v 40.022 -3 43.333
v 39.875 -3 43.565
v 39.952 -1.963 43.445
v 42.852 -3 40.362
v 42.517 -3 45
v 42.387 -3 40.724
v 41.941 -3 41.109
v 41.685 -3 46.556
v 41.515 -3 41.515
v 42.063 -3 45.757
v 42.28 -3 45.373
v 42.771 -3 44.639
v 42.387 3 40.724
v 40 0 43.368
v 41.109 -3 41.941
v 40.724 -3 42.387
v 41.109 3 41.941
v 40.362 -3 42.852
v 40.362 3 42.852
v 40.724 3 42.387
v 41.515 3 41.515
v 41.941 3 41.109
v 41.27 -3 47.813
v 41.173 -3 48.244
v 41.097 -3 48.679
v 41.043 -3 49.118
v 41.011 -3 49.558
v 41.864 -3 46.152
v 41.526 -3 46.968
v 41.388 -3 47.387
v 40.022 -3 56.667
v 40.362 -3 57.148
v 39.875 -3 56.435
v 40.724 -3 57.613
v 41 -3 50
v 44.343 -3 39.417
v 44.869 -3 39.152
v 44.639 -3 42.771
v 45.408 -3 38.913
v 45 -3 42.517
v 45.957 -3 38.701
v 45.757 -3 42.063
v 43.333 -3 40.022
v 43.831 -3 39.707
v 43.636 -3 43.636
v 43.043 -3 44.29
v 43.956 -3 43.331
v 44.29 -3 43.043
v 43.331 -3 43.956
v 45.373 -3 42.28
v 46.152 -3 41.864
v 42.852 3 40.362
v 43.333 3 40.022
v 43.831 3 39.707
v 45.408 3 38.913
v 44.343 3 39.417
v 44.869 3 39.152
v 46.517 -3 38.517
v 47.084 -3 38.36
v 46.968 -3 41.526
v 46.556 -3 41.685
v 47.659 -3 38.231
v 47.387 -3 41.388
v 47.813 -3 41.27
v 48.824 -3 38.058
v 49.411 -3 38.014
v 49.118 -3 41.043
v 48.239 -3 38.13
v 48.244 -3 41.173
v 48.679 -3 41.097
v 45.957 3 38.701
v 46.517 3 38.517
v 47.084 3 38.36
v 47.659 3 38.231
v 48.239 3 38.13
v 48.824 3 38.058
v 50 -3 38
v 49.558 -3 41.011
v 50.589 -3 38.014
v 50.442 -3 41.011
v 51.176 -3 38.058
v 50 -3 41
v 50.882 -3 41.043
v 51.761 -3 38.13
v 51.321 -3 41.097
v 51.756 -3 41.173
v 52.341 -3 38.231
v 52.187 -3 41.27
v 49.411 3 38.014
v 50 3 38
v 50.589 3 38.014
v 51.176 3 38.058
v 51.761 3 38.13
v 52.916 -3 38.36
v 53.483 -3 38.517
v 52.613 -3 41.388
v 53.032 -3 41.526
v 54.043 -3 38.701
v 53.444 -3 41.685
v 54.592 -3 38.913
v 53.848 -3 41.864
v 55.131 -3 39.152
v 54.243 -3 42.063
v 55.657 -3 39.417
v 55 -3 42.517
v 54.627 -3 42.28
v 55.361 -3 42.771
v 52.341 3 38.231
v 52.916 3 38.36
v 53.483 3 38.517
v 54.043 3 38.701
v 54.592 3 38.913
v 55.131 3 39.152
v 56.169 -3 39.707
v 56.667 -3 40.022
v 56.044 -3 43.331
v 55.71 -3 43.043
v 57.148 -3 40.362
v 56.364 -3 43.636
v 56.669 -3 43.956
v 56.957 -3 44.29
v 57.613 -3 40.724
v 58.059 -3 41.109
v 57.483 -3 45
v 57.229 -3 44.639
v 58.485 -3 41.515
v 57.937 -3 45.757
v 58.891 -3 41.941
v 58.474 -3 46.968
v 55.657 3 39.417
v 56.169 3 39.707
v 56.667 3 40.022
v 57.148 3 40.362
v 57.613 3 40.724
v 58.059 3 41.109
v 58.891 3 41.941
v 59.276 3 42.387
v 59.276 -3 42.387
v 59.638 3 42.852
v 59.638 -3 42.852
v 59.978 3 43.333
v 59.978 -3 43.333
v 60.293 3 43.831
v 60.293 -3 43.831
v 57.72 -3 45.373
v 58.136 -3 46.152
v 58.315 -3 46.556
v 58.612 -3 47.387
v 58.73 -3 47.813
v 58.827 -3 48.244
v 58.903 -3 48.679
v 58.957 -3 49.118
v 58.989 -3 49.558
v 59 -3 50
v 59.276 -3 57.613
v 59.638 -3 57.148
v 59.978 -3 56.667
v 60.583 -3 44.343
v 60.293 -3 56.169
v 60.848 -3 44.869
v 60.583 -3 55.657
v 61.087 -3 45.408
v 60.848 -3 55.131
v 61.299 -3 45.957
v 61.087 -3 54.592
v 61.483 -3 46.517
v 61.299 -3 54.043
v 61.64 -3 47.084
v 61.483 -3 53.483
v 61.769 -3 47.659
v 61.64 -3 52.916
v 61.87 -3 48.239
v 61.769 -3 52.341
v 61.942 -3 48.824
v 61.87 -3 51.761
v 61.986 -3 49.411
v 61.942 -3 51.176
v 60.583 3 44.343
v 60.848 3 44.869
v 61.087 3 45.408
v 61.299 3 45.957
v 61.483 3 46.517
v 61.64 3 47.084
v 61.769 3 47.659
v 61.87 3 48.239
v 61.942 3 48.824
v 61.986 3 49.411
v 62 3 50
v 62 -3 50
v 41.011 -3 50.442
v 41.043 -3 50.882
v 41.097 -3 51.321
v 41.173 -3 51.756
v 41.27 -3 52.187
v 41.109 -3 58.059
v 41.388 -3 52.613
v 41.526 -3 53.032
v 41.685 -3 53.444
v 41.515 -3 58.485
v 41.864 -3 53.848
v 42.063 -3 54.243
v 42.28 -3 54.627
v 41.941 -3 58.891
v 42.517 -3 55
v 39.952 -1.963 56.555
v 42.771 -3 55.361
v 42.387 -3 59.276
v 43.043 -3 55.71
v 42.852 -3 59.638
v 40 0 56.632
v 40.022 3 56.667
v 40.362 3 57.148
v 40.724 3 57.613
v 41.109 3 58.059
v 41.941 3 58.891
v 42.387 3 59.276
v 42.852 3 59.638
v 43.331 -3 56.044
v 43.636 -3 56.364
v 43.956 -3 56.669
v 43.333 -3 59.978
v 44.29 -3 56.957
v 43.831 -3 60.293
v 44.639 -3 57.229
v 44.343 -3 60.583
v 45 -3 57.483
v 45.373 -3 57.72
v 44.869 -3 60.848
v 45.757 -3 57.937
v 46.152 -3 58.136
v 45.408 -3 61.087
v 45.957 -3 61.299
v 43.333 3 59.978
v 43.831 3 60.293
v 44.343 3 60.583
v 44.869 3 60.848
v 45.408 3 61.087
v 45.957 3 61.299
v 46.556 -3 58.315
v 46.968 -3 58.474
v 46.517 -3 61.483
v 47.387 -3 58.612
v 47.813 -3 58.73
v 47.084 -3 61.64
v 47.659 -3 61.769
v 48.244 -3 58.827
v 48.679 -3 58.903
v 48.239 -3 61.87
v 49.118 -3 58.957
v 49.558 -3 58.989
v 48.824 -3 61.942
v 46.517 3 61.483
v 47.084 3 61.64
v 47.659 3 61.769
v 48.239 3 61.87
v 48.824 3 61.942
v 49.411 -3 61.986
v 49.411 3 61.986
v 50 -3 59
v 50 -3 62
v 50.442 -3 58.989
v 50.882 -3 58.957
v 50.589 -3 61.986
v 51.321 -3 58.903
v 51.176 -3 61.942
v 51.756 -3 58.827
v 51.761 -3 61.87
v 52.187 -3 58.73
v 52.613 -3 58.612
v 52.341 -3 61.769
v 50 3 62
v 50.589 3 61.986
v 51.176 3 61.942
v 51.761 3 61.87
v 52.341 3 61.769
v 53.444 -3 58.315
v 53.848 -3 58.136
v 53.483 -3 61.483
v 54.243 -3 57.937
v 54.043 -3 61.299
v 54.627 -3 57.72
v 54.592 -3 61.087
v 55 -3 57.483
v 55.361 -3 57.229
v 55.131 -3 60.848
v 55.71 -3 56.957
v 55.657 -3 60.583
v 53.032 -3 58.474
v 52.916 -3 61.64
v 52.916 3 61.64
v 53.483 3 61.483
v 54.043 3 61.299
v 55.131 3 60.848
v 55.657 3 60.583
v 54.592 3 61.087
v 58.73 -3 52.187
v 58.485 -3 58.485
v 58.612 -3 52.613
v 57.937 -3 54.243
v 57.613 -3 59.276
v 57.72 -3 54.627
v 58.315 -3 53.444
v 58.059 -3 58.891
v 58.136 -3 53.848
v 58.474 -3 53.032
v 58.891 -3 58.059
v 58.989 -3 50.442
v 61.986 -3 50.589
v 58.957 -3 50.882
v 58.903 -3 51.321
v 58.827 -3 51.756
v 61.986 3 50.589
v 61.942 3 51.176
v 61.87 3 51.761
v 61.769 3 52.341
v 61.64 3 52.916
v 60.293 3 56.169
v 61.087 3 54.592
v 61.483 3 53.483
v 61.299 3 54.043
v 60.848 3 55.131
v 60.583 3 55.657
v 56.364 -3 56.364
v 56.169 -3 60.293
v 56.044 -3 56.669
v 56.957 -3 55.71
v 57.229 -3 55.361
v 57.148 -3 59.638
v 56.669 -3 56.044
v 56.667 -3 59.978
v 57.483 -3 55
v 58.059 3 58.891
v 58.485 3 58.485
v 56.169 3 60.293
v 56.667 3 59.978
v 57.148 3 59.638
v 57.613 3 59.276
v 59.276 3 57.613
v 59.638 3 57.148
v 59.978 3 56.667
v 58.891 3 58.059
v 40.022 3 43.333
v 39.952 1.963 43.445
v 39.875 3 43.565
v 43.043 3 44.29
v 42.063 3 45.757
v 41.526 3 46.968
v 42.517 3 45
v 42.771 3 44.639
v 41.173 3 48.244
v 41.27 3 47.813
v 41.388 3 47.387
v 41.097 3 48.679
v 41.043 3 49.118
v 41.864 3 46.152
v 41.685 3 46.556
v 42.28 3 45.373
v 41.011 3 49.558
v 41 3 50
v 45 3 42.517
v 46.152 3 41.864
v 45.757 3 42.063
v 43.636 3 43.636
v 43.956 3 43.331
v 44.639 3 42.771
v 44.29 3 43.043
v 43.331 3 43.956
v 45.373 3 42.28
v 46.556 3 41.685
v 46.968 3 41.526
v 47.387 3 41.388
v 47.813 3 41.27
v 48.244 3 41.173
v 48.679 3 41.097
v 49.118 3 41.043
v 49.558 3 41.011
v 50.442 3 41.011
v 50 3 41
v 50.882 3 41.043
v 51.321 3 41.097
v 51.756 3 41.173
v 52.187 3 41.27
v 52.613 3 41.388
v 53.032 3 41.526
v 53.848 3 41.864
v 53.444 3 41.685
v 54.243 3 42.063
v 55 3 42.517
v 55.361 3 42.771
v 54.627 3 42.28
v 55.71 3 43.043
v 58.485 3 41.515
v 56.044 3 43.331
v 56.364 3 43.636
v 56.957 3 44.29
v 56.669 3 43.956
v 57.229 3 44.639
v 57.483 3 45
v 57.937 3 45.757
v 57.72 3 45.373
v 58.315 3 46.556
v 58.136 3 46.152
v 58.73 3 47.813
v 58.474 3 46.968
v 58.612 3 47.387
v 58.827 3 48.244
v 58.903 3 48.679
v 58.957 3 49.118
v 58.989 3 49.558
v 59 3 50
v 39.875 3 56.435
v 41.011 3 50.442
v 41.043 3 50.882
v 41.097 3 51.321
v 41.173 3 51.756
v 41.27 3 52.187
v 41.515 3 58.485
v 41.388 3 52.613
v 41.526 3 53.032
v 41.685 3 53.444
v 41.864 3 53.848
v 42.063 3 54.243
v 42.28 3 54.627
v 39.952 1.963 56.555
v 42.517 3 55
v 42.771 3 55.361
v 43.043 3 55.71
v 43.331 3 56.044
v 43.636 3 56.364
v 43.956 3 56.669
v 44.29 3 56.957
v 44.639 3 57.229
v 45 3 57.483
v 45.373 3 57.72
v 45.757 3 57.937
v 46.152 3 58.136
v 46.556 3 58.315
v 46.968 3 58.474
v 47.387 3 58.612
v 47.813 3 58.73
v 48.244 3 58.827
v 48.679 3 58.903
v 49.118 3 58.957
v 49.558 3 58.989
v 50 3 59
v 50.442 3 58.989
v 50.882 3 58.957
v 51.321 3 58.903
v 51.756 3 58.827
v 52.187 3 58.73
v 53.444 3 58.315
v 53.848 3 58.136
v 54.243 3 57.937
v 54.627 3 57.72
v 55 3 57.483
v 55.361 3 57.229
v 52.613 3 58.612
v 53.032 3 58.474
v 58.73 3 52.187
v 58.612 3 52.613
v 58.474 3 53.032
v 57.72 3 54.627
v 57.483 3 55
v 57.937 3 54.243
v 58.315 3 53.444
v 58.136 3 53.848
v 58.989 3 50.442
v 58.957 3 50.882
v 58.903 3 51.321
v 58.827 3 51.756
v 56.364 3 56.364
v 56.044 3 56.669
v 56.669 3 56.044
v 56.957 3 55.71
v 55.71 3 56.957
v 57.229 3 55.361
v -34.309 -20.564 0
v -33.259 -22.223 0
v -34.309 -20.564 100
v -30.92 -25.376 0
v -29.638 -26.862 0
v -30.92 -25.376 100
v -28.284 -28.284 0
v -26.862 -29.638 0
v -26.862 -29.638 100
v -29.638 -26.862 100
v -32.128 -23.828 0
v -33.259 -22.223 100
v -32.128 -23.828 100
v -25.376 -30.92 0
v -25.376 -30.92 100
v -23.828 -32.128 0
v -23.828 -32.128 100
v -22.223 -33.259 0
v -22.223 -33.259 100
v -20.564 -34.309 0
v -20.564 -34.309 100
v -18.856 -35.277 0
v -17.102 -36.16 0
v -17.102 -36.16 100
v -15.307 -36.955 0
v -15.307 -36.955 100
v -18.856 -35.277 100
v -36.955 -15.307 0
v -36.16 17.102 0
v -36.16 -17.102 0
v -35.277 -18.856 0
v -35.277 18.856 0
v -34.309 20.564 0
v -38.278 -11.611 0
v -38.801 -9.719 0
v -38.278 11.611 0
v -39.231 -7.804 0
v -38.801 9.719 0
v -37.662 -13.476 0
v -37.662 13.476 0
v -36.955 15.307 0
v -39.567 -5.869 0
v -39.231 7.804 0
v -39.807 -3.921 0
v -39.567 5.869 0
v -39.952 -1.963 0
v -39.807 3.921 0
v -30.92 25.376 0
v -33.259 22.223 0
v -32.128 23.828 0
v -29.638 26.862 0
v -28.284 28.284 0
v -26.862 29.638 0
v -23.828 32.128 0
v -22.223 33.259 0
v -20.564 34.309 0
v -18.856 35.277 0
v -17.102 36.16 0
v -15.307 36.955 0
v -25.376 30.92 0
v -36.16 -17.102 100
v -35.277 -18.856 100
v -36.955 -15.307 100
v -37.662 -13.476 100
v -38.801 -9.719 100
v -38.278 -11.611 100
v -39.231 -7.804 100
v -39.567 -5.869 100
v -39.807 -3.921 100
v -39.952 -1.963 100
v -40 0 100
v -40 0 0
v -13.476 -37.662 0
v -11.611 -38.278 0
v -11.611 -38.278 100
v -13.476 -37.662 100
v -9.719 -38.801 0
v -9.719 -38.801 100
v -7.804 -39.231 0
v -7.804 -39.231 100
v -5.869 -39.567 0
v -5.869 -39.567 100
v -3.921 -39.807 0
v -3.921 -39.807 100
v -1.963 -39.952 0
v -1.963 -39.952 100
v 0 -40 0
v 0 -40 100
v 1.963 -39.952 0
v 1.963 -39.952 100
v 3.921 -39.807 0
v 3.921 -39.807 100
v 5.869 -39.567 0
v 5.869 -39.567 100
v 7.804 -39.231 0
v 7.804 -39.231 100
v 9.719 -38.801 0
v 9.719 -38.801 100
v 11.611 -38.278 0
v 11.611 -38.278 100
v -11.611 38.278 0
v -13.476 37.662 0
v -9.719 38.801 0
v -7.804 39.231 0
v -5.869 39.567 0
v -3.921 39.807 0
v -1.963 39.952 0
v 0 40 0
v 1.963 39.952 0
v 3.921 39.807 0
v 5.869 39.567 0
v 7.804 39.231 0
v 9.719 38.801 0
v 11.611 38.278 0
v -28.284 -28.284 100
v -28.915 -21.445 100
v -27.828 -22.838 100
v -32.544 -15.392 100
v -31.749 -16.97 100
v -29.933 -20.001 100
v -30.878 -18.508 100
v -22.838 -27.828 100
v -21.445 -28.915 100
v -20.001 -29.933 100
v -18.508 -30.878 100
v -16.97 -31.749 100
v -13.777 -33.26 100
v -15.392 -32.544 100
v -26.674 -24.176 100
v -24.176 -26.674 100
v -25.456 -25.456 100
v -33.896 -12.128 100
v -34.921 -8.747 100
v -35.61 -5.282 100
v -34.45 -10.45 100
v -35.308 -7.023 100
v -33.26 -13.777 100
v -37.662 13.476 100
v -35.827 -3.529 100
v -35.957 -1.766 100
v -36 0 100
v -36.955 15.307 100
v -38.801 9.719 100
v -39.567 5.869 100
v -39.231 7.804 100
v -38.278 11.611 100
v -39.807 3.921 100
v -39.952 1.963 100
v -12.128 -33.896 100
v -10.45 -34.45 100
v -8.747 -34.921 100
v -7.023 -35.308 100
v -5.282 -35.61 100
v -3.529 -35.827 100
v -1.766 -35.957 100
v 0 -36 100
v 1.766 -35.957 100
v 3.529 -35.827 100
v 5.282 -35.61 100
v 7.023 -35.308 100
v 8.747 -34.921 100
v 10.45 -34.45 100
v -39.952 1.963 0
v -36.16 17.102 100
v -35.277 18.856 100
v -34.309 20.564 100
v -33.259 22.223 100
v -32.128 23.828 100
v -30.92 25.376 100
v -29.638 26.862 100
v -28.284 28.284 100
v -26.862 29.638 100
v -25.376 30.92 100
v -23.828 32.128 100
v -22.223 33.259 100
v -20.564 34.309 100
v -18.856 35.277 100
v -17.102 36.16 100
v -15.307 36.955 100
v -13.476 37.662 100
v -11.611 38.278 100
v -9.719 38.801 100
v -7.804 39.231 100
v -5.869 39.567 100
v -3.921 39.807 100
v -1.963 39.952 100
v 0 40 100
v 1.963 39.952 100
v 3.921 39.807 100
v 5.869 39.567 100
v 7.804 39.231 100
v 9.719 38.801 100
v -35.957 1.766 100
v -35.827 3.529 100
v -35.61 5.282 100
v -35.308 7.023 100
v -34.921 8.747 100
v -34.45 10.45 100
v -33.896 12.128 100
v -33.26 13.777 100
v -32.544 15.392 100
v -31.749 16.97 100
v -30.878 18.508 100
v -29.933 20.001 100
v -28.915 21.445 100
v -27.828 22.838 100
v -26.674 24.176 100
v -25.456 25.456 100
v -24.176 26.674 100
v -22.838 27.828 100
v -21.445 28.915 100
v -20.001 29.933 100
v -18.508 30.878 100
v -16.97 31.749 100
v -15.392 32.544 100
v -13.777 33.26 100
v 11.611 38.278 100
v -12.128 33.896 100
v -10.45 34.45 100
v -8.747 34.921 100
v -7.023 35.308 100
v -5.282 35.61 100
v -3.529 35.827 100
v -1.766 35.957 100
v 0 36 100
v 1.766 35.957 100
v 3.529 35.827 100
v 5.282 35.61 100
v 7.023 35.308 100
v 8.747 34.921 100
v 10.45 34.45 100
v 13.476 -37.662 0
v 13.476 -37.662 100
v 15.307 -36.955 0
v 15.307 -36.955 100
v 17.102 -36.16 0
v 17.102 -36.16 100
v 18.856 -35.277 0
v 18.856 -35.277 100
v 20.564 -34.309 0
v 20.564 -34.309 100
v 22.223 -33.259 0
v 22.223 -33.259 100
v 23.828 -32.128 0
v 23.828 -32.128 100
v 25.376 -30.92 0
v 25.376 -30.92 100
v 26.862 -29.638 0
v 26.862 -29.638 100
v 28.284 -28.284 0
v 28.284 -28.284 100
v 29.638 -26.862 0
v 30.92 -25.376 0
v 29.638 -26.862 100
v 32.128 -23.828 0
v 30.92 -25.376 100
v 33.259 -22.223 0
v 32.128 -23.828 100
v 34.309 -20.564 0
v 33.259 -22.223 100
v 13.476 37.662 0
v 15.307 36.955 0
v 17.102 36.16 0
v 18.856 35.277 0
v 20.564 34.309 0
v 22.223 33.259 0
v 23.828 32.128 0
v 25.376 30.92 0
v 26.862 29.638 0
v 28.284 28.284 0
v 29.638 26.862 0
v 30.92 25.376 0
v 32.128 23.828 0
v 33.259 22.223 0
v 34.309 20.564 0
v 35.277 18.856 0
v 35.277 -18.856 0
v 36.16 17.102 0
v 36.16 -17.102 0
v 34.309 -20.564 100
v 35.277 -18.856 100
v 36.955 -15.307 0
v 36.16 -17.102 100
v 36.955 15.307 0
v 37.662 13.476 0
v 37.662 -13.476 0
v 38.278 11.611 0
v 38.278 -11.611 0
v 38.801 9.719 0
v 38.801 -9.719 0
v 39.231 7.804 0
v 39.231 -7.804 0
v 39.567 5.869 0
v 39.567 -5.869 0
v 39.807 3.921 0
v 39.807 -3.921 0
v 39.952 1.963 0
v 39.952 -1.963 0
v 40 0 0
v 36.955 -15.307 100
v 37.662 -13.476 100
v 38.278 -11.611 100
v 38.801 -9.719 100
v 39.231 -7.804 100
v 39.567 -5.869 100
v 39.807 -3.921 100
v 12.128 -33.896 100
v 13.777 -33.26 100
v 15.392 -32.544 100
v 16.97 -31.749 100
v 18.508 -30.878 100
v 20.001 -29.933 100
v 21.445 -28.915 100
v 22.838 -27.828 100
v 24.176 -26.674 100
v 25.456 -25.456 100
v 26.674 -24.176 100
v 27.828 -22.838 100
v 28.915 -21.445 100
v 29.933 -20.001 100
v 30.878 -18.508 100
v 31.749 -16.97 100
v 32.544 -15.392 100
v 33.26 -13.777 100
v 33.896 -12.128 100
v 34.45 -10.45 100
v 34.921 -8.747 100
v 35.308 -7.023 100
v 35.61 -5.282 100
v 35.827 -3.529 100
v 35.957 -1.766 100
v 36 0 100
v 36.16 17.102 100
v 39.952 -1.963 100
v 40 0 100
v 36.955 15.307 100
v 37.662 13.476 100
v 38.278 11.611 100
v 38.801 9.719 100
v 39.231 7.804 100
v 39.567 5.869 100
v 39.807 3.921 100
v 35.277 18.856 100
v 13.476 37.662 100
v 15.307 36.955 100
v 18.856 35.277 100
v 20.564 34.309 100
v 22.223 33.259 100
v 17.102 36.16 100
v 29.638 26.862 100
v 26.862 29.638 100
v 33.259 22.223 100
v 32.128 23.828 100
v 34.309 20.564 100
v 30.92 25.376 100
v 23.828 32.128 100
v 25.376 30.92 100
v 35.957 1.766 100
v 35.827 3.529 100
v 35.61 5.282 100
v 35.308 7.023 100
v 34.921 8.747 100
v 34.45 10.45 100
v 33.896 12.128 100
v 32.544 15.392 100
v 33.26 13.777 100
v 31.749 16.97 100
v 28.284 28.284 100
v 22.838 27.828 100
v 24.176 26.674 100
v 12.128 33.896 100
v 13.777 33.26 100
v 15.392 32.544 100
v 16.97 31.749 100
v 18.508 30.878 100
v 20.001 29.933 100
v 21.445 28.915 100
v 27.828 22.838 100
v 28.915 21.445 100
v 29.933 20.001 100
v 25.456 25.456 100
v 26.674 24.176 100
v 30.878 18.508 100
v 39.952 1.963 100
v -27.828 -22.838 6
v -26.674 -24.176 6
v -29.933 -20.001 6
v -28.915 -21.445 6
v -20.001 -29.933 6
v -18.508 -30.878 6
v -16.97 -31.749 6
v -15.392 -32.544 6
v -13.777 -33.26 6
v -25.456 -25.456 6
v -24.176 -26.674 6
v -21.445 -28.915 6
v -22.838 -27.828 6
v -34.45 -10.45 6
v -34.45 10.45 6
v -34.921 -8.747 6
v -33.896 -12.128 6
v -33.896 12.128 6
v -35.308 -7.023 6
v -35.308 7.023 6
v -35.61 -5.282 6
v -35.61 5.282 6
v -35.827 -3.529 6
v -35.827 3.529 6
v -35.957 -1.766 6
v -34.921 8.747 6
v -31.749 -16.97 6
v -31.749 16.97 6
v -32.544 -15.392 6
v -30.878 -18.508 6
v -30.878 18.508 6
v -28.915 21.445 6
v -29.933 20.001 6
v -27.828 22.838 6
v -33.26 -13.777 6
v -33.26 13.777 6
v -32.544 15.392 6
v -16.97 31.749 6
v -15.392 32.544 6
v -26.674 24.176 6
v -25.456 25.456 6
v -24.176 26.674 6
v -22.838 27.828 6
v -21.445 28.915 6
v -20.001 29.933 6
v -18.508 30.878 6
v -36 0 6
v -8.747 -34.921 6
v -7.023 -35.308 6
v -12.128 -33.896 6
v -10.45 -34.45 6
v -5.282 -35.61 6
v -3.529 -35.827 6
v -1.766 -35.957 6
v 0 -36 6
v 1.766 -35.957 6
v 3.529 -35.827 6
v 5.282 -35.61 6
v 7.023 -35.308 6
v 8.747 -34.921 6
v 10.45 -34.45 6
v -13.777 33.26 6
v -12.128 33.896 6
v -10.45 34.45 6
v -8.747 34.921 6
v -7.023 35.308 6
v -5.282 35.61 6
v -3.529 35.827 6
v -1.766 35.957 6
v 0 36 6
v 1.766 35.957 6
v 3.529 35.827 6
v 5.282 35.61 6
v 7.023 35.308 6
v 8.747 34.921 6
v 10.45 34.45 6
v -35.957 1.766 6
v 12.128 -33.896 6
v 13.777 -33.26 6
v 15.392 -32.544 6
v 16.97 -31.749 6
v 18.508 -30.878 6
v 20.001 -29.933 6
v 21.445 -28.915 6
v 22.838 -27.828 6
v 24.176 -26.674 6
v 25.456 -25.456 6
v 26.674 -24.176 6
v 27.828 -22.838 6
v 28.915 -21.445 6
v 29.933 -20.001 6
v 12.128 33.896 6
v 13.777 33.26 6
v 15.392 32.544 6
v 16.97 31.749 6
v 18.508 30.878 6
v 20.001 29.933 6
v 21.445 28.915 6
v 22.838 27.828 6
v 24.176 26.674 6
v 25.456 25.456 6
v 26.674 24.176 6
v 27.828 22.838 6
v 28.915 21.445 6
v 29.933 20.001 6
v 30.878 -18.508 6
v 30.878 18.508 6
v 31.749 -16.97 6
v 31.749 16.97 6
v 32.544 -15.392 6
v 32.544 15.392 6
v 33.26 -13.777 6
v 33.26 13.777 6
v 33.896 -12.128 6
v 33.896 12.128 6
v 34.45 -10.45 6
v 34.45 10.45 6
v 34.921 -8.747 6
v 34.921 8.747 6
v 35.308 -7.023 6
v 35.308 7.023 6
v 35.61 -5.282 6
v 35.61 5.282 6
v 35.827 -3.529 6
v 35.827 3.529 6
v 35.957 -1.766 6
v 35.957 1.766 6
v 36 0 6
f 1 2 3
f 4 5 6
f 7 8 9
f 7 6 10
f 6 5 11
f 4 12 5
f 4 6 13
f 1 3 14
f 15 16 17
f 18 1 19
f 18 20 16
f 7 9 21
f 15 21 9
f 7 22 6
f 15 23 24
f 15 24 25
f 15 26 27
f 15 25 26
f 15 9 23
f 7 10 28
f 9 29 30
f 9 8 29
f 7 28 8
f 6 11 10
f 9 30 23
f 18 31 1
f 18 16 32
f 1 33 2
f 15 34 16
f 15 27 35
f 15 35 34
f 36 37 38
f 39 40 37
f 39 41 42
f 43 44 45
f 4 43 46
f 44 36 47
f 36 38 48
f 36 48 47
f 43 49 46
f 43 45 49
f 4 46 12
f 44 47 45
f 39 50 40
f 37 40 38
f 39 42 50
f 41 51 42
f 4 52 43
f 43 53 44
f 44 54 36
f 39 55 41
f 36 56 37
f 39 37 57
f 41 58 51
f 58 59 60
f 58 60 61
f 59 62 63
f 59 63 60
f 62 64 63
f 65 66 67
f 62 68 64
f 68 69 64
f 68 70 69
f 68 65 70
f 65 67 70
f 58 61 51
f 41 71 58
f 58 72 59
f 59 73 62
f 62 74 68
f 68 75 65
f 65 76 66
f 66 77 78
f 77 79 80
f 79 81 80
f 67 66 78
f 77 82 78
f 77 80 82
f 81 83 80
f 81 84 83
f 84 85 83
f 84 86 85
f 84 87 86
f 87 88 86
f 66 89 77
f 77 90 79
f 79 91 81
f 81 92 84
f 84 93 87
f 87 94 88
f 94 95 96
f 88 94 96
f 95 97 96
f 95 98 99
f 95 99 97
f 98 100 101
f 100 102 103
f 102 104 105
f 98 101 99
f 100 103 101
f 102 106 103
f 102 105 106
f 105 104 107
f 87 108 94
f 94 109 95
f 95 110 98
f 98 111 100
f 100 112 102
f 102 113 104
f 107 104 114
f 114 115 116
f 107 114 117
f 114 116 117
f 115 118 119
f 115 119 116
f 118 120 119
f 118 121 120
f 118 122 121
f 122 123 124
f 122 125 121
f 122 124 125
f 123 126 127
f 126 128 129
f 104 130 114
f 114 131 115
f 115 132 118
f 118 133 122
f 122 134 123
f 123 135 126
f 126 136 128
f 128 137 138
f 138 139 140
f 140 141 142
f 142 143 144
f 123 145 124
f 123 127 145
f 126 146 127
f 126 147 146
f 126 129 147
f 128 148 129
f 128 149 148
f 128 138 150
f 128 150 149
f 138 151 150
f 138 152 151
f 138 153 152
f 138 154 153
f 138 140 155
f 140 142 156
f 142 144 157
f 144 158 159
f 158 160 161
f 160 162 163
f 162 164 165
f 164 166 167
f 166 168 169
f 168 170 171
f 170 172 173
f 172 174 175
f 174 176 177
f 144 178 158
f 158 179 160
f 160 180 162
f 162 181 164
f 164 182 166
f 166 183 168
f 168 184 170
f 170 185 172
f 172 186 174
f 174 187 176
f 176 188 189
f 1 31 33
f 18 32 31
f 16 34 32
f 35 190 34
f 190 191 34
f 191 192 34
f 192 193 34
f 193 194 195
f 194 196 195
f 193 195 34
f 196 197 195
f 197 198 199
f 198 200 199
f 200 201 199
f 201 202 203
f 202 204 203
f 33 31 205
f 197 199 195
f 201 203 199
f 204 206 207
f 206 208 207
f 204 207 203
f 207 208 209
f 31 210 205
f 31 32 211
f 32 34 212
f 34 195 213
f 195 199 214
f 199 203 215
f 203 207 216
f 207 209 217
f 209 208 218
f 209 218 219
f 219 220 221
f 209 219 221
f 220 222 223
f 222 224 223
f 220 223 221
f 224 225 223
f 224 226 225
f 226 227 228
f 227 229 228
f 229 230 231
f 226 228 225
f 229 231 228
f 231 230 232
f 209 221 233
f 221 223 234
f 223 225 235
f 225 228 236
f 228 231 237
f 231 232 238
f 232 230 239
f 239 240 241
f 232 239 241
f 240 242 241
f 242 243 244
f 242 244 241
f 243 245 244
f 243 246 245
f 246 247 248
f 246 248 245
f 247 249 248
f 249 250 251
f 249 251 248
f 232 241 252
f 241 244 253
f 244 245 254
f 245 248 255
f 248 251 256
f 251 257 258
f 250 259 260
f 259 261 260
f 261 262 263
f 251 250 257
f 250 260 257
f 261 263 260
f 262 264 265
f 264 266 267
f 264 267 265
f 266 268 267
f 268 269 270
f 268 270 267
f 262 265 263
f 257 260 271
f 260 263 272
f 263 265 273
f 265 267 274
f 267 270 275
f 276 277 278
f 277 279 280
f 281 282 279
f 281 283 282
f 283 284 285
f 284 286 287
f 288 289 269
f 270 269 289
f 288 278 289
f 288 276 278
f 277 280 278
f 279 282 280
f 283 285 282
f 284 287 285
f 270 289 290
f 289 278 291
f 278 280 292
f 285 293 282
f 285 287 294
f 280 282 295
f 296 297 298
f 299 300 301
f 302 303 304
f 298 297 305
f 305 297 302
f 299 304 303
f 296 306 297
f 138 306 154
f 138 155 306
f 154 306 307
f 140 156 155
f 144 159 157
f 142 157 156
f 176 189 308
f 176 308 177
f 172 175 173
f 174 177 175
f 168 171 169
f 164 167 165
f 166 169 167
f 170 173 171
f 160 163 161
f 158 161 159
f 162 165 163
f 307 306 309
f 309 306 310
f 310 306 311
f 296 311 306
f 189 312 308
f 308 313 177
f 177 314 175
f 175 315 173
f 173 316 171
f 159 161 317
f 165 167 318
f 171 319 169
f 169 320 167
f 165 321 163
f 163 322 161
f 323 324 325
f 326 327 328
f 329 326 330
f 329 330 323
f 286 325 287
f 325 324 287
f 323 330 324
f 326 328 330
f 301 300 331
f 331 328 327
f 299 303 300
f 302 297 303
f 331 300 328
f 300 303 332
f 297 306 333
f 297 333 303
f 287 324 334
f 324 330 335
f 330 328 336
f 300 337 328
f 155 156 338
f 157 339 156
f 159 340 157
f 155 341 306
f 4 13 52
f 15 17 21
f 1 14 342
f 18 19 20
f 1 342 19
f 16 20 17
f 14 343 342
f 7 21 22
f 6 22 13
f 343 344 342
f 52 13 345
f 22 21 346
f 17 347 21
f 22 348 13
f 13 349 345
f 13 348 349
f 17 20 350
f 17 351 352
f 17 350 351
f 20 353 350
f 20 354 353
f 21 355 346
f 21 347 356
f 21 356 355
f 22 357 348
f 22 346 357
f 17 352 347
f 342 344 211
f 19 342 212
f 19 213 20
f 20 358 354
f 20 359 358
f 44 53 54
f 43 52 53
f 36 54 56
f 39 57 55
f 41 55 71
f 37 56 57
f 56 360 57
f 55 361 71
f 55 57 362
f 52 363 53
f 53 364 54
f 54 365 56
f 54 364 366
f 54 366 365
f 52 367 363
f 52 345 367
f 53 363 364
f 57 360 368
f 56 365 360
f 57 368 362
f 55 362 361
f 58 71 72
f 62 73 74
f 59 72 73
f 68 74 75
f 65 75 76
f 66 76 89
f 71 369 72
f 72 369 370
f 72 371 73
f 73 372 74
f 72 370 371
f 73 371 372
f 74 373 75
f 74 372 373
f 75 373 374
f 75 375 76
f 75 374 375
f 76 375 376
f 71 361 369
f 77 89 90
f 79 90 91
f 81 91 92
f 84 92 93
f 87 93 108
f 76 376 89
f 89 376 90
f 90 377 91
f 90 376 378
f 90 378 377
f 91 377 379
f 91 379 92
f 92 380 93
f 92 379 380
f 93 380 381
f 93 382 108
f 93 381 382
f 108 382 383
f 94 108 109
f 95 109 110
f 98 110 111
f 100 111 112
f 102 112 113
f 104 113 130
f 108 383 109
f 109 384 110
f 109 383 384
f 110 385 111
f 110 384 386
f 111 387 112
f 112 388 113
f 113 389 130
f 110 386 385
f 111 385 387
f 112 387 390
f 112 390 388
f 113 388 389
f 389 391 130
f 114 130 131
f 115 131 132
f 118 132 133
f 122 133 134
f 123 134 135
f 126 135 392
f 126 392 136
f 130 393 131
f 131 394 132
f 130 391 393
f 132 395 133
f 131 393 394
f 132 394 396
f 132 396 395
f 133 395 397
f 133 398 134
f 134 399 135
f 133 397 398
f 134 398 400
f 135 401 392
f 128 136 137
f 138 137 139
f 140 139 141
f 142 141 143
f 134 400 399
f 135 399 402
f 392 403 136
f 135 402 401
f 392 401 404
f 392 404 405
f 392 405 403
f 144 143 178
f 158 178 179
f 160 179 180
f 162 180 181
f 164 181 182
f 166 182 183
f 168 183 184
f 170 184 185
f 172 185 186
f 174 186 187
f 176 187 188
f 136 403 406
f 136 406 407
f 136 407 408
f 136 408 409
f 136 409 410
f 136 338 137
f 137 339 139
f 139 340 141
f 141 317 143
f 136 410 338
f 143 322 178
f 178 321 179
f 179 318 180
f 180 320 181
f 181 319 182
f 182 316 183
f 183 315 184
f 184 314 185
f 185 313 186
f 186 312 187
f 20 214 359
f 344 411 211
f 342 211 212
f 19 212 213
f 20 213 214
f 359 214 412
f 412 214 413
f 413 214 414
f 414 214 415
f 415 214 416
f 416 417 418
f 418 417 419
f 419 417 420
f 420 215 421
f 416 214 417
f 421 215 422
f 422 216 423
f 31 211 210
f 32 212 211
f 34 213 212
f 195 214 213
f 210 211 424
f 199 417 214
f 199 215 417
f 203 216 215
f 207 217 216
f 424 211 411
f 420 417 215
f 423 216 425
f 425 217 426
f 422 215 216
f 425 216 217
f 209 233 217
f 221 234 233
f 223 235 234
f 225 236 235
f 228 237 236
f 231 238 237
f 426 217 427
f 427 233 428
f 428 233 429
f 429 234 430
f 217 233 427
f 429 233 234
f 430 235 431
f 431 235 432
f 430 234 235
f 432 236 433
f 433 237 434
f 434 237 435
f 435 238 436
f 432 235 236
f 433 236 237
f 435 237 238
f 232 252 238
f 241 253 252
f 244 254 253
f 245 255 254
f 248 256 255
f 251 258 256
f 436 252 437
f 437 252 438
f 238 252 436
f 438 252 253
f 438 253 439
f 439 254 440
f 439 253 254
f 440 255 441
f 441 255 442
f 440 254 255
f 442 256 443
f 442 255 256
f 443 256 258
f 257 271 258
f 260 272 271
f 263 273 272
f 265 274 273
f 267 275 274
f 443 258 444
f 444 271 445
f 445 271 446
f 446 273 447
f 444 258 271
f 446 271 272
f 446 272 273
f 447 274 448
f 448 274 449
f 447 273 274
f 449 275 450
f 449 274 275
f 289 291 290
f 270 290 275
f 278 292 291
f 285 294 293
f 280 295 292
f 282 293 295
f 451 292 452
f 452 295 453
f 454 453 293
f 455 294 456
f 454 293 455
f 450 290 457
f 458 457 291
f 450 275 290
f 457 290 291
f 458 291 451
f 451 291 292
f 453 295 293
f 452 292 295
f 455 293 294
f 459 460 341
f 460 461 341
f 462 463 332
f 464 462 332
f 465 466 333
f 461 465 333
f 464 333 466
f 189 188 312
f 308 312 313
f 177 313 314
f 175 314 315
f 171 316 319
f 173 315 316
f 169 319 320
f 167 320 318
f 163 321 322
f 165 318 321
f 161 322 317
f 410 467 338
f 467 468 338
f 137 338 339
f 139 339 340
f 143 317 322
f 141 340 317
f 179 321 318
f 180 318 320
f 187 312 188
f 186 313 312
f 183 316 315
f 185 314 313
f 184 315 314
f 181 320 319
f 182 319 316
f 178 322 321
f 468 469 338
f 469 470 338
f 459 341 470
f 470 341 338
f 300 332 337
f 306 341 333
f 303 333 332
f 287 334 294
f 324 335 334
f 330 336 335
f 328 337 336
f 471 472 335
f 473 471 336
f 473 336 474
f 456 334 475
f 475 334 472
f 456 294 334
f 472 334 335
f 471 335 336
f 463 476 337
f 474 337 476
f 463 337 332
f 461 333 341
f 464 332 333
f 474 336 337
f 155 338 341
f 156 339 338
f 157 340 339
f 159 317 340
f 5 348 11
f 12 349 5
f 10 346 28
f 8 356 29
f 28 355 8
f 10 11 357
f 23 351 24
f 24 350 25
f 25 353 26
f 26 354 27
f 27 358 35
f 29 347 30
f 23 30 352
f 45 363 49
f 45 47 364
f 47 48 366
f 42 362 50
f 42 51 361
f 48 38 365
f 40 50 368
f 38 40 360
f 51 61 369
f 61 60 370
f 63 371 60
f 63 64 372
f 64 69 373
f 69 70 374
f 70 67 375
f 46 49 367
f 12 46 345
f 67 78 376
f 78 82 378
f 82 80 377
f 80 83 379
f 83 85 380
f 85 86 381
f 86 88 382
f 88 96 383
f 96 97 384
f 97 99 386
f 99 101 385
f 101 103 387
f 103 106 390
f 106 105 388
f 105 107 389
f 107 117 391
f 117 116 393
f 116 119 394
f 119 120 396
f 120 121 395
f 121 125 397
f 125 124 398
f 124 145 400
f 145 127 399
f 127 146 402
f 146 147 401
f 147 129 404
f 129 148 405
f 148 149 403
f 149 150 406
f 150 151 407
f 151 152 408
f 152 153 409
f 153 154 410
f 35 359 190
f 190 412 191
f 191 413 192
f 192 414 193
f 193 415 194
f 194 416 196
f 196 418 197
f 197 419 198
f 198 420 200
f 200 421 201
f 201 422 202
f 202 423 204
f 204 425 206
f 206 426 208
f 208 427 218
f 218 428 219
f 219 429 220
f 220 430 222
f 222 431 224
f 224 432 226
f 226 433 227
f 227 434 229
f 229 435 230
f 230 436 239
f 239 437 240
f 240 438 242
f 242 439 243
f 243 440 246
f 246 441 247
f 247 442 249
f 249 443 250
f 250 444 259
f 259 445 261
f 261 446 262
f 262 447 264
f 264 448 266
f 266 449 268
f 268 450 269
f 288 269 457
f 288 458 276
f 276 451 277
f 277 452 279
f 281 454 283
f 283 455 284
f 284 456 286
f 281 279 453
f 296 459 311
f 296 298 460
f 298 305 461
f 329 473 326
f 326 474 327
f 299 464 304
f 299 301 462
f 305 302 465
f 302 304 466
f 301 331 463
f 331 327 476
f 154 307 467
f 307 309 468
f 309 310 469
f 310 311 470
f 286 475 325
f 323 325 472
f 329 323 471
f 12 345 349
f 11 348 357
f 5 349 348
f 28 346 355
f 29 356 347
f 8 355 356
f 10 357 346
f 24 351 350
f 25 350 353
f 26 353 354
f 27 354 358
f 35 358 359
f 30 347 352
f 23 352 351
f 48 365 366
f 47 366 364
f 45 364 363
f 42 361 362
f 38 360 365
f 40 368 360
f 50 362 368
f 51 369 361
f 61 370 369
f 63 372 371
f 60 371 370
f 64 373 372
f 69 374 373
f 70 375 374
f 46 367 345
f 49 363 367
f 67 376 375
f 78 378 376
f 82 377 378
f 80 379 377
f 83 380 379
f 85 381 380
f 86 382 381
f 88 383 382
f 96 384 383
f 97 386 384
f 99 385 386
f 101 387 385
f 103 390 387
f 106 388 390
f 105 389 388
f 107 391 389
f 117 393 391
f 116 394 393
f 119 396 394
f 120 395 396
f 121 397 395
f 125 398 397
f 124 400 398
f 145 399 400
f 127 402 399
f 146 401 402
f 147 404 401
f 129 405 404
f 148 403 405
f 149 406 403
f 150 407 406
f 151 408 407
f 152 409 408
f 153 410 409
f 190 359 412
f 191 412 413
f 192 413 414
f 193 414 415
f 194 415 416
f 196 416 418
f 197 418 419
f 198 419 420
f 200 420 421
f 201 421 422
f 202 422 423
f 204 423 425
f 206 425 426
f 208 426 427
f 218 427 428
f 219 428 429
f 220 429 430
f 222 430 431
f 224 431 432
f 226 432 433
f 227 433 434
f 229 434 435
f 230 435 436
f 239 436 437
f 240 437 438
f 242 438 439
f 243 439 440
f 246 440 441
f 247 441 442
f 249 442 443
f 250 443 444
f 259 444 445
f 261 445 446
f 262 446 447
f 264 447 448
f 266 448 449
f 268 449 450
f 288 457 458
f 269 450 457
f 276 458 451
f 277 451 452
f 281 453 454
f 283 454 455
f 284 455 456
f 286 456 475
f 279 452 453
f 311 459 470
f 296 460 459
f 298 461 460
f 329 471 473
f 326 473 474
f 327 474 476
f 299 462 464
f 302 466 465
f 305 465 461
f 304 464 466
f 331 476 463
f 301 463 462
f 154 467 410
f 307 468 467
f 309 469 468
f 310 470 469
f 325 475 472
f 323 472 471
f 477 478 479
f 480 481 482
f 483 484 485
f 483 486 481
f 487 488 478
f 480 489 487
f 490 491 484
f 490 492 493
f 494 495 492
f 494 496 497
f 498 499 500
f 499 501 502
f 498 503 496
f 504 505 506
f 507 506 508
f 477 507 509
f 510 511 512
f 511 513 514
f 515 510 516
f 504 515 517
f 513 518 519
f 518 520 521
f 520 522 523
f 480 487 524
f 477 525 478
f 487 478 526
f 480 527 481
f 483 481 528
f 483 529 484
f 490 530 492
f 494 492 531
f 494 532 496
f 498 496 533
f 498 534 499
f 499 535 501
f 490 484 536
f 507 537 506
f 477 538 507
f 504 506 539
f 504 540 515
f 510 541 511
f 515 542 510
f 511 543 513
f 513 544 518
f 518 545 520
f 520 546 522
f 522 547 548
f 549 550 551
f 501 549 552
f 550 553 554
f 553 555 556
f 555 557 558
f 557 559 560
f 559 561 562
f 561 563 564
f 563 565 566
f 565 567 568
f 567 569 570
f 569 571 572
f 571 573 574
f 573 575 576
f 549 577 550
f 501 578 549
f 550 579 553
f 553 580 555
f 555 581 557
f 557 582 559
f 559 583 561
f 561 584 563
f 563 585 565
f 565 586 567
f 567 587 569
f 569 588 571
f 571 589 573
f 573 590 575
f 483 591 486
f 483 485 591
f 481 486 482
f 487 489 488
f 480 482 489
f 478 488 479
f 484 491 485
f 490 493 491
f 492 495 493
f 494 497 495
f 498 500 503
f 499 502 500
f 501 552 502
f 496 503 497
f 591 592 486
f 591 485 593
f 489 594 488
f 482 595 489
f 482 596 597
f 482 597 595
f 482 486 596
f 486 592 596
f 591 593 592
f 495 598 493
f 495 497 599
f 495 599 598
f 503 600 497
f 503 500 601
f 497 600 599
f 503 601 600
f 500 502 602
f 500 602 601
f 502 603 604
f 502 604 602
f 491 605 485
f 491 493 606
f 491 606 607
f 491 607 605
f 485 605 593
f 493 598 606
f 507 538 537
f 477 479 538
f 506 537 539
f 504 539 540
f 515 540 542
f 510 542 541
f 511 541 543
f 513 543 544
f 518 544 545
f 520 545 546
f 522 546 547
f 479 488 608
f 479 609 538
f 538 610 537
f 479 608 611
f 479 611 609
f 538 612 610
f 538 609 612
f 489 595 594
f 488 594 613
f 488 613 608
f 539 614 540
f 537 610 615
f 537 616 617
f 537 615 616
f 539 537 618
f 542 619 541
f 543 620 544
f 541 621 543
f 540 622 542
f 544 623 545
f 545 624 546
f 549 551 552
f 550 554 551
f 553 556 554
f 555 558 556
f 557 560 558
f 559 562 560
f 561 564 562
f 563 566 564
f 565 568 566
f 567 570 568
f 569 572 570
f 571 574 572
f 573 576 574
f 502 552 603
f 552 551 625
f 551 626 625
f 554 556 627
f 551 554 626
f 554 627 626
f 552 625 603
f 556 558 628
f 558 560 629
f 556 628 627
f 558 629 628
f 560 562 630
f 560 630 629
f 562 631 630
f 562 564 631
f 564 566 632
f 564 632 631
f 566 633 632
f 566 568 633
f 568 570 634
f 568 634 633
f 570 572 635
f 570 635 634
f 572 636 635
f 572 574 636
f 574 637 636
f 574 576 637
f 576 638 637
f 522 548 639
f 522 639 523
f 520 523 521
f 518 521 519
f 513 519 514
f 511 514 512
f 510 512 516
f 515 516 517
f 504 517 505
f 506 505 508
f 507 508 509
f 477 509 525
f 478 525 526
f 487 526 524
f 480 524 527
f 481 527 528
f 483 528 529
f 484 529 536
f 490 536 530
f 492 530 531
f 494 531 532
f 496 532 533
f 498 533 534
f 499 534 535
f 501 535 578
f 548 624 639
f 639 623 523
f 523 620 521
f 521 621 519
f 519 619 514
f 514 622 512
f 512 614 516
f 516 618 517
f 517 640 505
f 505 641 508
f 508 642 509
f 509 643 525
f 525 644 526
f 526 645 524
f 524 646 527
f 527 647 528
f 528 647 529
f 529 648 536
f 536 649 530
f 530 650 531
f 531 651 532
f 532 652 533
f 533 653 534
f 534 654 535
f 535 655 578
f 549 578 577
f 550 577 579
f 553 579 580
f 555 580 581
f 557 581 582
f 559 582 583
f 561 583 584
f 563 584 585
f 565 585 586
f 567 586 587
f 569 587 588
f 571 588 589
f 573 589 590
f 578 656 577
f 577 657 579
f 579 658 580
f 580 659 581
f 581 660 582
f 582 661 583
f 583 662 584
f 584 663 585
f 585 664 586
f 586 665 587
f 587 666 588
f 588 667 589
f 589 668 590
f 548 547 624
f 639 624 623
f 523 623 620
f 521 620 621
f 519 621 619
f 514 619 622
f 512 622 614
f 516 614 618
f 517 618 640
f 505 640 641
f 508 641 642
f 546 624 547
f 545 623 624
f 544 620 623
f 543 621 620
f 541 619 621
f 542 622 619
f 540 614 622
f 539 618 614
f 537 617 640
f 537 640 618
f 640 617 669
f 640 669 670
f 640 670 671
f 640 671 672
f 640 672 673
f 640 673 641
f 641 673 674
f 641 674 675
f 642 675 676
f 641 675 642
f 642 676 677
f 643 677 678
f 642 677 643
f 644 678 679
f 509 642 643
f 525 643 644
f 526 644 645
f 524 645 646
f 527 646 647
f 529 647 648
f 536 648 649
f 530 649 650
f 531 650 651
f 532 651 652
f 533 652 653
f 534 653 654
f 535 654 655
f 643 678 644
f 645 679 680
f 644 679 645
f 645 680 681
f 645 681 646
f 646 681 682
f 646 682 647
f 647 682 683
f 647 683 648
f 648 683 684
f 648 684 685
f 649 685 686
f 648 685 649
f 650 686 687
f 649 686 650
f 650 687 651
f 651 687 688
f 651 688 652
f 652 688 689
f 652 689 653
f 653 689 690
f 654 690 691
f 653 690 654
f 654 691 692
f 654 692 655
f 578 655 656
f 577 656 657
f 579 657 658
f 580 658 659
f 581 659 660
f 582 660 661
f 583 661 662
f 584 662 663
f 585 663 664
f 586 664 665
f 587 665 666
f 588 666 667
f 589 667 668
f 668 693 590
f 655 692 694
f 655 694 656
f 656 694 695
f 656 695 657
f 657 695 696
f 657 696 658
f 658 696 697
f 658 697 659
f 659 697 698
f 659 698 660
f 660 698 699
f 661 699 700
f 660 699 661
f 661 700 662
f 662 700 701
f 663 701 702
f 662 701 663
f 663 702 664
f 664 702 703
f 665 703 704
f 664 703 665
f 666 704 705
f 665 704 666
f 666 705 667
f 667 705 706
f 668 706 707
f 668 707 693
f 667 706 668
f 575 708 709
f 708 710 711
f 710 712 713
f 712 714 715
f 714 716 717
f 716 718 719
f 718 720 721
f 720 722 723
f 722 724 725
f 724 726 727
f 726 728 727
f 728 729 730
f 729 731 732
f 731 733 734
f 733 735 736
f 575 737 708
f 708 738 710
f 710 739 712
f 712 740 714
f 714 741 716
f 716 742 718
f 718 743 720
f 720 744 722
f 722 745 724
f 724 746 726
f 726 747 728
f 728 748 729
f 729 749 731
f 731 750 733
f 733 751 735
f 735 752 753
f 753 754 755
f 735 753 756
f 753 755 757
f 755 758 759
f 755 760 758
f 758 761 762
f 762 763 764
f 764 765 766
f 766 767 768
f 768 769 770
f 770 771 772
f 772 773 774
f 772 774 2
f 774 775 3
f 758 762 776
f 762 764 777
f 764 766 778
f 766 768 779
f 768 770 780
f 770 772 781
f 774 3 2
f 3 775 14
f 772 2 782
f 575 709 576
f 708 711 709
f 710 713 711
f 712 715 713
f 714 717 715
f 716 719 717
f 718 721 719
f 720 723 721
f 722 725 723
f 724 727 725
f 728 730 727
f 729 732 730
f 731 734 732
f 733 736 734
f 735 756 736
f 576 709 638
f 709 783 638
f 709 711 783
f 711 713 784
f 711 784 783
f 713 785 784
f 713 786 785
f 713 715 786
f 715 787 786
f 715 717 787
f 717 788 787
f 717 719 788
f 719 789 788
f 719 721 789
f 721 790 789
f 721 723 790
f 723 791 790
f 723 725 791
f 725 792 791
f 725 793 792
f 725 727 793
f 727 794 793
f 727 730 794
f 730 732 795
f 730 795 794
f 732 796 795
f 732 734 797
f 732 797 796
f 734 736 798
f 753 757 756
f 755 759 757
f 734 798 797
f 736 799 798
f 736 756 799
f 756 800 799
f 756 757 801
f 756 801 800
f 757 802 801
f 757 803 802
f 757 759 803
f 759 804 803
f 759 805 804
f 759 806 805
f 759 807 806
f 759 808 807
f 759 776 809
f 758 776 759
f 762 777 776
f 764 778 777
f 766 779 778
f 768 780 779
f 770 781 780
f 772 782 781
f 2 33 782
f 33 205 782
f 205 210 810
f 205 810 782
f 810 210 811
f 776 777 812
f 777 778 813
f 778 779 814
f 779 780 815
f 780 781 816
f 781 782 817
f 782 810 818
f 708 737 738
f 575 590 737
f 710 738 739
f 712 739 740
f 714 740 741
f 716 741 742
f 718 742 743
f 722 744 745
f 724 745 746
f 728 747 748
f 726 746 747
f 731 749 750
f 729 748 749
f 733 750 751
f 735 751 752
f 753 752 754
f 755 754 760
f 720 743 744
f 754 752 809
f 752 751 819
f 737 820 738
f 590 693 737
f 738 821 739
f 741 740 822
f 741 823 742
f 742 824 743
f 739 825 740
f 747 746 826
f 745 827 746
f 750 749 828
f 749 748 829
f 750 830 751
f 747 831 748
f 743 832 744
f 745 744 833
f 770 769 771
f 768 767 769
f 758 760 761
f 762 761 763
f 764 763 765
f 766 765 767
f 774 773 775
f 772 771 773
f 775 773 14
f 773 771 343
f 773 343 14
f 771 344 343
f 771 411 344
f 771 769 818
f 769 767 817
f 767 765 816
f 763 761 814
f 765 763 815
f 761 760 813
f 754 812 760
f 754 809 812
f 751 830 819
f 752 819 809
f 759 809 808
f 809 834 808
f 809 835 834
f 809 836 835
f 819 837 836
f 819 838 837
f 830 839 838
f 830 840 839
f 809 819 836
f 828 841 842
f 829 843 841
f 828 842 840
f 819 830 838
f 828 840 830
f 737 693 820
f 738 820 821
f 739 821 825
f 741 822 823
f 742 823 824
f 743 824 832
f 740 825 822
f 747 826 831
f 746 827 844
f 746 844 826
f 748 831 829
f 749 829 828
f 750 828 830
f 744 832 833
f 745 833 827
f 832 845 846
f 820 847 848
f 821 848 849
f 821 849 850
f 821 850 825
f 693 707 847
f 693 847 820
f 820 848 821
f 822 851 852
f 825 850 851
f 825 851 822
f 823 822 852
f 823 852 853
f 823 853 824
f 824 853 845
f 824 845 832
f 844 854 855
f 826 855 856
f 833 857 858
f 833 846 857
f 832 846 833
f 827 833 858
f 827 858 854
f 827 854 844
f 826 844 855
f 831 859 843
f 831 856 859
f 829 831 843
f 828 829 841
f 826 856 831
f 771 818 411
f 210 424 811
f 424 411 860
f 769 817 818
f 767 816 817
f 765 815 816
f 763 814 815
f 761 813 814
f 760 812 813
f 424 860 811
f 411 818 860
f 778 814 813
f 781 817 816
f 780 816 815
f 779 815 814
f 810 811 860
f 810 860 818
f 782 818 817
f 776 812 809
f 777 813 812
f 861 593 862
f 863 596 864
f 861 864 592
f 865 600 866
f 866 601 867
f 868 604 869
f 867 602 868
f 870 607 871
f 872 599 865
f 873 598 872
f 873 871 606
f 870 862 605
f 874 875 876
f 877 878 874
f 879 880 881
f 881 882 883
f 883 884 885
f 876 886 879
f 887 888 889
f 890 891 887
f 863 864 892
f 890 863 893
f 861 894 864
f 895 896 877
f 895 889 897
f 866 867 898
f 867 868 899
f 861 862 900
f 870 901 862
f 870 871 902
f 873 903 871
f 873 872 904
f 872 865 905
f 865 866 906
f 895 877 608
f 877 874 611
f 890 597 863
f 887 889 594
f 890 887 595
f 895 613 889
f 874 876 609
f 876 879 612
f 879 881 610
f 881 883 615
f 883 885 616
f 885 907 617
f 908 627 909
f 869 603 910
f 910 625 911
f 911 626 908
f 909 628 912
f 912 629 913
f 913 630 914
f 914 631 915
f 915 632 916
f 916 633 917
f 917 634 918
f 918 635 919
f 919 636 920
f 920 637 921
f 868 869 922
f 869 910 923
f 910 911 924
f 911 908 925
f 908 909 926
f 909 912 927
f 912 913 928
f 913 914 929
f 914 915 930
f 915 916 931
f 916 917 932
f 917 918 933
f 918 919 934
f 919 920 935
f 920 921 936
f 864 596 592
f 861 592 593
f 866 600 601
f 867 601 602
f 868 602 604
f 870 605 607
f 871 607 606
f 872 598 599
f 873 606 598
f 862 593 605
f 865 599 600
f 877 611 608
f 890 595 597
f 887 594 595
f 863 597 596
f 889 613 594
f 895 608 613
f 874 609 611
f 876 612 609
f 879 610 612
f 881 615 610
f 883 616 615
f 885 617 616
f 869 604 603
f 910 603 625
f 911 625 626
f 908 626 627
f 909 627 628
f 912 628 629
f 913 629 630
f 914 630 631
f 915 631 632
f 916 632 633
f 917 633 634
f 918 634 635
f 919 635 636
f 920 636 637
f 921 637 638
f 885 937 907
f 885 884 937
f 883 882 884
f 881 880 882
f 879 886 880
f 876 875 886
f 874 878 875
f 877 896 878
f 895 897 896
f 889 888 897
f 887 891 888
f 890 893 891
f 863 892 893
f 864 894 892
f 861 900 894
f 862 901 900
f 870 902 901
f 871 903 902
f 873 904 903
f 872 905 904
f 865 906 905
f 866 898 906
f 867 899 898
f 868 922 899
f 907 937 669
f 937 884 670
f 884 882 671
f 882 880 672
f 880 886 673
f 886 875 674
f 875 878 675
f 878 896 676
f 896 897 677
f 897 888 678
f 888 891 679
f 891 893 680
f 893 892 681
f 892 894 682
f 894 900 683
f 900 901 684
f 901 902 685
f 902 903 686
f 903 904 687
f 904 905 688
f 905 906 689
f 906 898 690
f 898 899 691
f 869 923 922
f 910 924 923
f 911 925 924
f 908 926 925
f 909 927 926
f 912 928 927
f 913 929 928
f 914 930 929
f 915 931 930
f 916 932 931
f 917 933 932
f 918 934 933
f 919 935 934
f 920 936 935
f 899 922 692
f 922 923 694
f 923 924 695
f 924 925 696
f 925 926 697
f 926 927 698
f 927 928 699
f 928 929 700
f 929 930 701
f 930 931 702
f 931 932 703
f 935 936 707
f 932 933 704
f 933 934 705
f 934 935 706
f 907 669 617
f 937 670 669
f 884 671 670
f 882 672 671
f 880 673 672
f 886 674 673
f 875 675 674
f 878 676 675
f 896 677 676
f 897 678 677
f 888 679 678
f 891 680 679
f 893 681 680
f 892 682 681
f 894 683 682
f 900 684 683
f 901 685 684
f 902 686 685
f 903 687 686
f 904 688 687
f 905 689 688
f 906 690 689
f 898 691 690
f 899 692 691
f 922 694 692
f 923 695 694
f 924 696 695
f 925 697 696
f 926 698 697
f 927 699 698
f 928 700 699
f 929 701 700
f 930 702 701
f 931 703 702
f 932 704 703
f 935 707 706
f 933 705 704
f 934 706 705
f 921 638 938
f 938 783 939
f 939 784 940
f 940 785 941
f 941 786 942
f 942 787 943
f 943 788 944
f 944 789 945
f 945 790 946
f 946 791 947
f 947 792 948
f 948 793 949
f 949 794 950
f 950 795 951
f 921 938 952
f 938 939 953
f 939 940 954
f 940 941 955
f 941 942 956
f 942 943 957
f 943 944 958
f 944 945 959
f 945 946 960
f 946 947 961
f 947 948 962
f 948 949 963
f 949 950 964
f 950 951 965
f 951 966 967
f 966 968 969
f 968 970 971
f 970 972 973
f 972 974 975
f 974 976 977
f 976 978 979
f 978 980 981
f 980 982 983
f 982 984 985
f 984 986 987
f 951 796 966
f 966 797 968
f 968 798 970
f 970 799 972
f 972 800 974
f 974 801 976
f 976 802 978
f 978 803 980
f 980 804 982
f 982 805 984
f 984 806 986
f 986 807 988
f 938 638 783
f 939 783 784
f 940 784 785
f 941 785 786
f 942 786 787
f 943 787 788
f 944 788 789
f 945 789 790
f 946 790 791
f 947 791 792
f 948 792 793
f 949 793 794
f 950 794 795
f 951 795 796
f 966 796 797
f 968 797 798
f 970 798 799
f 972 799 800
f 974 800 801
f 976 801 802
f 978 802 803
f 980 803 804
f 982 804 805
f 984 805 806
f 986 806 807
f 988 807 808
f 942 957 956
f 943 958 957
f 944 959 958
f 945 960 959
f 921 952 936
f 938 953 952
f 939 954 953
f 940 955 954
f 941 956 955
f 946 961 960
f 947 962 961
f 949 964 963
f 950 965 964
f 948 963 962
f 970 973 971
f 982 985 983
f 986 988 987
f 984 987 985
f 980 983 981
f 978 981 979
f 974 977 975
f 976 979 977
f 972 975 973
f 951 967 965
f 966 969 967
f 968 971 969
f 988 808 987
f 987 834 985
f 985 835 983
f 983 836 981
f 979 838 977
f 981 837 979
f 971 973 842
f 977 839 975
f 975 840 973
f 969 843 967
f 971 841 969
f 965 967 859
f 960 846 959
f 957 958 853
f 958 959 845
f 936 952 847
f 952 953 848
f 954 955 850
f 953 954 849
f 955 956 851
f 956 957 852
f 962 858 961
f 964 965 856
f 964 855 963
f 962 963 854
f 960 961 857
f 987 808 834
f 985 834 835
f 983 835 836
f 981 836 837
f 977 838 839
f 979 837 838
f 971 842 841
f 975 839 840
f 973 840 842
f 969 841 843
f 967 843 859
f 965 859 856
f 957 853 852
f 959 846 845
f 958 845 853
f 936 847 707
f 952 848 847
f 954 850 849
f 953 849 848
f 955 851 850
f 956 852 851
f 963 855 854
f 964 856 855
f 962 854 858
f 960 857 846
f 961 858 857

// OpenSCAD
$fn = 128;

cup_outer_diameter = 80;
cup_height = 100;
wall_thickness = 4;
bottom_thickness = 6;

handle_outer_radius = 12;
handle_ring_thickness = 3;
handle_width = 6;
handle_overlap = 2;

epsilon = 0.1;
cup_outer_radius = cup_outer_diameter / 2;
cup_inner_radius = cup_outer_radius - wall_thickness;

difference() {
    union() {
        cylinder(h = cup_height, r = cup_outer_radius);

        translate([
            cup_outer_radius + handle_outer_radius - handle_overlap,
            0,
            cup_height / 2
        ])
            rotate([90, 0, 0])
                difference() {
                    cylinder(
                        h = handle_width,
                        r = handle_outer_radius,
                        center = true
                    );
                    cylinder(
                        h = handle_width + 2 * epsilon,
                        r = handle_outer_radius - handle_ring_thickness,
                        center = true
                    );
                }
    }

    translate([0, 0, bottom_thickness])
        cylinder(
            h = cup_height - bottom_thickness + epsilon,
            r = cup_inner_radius
        );
}
